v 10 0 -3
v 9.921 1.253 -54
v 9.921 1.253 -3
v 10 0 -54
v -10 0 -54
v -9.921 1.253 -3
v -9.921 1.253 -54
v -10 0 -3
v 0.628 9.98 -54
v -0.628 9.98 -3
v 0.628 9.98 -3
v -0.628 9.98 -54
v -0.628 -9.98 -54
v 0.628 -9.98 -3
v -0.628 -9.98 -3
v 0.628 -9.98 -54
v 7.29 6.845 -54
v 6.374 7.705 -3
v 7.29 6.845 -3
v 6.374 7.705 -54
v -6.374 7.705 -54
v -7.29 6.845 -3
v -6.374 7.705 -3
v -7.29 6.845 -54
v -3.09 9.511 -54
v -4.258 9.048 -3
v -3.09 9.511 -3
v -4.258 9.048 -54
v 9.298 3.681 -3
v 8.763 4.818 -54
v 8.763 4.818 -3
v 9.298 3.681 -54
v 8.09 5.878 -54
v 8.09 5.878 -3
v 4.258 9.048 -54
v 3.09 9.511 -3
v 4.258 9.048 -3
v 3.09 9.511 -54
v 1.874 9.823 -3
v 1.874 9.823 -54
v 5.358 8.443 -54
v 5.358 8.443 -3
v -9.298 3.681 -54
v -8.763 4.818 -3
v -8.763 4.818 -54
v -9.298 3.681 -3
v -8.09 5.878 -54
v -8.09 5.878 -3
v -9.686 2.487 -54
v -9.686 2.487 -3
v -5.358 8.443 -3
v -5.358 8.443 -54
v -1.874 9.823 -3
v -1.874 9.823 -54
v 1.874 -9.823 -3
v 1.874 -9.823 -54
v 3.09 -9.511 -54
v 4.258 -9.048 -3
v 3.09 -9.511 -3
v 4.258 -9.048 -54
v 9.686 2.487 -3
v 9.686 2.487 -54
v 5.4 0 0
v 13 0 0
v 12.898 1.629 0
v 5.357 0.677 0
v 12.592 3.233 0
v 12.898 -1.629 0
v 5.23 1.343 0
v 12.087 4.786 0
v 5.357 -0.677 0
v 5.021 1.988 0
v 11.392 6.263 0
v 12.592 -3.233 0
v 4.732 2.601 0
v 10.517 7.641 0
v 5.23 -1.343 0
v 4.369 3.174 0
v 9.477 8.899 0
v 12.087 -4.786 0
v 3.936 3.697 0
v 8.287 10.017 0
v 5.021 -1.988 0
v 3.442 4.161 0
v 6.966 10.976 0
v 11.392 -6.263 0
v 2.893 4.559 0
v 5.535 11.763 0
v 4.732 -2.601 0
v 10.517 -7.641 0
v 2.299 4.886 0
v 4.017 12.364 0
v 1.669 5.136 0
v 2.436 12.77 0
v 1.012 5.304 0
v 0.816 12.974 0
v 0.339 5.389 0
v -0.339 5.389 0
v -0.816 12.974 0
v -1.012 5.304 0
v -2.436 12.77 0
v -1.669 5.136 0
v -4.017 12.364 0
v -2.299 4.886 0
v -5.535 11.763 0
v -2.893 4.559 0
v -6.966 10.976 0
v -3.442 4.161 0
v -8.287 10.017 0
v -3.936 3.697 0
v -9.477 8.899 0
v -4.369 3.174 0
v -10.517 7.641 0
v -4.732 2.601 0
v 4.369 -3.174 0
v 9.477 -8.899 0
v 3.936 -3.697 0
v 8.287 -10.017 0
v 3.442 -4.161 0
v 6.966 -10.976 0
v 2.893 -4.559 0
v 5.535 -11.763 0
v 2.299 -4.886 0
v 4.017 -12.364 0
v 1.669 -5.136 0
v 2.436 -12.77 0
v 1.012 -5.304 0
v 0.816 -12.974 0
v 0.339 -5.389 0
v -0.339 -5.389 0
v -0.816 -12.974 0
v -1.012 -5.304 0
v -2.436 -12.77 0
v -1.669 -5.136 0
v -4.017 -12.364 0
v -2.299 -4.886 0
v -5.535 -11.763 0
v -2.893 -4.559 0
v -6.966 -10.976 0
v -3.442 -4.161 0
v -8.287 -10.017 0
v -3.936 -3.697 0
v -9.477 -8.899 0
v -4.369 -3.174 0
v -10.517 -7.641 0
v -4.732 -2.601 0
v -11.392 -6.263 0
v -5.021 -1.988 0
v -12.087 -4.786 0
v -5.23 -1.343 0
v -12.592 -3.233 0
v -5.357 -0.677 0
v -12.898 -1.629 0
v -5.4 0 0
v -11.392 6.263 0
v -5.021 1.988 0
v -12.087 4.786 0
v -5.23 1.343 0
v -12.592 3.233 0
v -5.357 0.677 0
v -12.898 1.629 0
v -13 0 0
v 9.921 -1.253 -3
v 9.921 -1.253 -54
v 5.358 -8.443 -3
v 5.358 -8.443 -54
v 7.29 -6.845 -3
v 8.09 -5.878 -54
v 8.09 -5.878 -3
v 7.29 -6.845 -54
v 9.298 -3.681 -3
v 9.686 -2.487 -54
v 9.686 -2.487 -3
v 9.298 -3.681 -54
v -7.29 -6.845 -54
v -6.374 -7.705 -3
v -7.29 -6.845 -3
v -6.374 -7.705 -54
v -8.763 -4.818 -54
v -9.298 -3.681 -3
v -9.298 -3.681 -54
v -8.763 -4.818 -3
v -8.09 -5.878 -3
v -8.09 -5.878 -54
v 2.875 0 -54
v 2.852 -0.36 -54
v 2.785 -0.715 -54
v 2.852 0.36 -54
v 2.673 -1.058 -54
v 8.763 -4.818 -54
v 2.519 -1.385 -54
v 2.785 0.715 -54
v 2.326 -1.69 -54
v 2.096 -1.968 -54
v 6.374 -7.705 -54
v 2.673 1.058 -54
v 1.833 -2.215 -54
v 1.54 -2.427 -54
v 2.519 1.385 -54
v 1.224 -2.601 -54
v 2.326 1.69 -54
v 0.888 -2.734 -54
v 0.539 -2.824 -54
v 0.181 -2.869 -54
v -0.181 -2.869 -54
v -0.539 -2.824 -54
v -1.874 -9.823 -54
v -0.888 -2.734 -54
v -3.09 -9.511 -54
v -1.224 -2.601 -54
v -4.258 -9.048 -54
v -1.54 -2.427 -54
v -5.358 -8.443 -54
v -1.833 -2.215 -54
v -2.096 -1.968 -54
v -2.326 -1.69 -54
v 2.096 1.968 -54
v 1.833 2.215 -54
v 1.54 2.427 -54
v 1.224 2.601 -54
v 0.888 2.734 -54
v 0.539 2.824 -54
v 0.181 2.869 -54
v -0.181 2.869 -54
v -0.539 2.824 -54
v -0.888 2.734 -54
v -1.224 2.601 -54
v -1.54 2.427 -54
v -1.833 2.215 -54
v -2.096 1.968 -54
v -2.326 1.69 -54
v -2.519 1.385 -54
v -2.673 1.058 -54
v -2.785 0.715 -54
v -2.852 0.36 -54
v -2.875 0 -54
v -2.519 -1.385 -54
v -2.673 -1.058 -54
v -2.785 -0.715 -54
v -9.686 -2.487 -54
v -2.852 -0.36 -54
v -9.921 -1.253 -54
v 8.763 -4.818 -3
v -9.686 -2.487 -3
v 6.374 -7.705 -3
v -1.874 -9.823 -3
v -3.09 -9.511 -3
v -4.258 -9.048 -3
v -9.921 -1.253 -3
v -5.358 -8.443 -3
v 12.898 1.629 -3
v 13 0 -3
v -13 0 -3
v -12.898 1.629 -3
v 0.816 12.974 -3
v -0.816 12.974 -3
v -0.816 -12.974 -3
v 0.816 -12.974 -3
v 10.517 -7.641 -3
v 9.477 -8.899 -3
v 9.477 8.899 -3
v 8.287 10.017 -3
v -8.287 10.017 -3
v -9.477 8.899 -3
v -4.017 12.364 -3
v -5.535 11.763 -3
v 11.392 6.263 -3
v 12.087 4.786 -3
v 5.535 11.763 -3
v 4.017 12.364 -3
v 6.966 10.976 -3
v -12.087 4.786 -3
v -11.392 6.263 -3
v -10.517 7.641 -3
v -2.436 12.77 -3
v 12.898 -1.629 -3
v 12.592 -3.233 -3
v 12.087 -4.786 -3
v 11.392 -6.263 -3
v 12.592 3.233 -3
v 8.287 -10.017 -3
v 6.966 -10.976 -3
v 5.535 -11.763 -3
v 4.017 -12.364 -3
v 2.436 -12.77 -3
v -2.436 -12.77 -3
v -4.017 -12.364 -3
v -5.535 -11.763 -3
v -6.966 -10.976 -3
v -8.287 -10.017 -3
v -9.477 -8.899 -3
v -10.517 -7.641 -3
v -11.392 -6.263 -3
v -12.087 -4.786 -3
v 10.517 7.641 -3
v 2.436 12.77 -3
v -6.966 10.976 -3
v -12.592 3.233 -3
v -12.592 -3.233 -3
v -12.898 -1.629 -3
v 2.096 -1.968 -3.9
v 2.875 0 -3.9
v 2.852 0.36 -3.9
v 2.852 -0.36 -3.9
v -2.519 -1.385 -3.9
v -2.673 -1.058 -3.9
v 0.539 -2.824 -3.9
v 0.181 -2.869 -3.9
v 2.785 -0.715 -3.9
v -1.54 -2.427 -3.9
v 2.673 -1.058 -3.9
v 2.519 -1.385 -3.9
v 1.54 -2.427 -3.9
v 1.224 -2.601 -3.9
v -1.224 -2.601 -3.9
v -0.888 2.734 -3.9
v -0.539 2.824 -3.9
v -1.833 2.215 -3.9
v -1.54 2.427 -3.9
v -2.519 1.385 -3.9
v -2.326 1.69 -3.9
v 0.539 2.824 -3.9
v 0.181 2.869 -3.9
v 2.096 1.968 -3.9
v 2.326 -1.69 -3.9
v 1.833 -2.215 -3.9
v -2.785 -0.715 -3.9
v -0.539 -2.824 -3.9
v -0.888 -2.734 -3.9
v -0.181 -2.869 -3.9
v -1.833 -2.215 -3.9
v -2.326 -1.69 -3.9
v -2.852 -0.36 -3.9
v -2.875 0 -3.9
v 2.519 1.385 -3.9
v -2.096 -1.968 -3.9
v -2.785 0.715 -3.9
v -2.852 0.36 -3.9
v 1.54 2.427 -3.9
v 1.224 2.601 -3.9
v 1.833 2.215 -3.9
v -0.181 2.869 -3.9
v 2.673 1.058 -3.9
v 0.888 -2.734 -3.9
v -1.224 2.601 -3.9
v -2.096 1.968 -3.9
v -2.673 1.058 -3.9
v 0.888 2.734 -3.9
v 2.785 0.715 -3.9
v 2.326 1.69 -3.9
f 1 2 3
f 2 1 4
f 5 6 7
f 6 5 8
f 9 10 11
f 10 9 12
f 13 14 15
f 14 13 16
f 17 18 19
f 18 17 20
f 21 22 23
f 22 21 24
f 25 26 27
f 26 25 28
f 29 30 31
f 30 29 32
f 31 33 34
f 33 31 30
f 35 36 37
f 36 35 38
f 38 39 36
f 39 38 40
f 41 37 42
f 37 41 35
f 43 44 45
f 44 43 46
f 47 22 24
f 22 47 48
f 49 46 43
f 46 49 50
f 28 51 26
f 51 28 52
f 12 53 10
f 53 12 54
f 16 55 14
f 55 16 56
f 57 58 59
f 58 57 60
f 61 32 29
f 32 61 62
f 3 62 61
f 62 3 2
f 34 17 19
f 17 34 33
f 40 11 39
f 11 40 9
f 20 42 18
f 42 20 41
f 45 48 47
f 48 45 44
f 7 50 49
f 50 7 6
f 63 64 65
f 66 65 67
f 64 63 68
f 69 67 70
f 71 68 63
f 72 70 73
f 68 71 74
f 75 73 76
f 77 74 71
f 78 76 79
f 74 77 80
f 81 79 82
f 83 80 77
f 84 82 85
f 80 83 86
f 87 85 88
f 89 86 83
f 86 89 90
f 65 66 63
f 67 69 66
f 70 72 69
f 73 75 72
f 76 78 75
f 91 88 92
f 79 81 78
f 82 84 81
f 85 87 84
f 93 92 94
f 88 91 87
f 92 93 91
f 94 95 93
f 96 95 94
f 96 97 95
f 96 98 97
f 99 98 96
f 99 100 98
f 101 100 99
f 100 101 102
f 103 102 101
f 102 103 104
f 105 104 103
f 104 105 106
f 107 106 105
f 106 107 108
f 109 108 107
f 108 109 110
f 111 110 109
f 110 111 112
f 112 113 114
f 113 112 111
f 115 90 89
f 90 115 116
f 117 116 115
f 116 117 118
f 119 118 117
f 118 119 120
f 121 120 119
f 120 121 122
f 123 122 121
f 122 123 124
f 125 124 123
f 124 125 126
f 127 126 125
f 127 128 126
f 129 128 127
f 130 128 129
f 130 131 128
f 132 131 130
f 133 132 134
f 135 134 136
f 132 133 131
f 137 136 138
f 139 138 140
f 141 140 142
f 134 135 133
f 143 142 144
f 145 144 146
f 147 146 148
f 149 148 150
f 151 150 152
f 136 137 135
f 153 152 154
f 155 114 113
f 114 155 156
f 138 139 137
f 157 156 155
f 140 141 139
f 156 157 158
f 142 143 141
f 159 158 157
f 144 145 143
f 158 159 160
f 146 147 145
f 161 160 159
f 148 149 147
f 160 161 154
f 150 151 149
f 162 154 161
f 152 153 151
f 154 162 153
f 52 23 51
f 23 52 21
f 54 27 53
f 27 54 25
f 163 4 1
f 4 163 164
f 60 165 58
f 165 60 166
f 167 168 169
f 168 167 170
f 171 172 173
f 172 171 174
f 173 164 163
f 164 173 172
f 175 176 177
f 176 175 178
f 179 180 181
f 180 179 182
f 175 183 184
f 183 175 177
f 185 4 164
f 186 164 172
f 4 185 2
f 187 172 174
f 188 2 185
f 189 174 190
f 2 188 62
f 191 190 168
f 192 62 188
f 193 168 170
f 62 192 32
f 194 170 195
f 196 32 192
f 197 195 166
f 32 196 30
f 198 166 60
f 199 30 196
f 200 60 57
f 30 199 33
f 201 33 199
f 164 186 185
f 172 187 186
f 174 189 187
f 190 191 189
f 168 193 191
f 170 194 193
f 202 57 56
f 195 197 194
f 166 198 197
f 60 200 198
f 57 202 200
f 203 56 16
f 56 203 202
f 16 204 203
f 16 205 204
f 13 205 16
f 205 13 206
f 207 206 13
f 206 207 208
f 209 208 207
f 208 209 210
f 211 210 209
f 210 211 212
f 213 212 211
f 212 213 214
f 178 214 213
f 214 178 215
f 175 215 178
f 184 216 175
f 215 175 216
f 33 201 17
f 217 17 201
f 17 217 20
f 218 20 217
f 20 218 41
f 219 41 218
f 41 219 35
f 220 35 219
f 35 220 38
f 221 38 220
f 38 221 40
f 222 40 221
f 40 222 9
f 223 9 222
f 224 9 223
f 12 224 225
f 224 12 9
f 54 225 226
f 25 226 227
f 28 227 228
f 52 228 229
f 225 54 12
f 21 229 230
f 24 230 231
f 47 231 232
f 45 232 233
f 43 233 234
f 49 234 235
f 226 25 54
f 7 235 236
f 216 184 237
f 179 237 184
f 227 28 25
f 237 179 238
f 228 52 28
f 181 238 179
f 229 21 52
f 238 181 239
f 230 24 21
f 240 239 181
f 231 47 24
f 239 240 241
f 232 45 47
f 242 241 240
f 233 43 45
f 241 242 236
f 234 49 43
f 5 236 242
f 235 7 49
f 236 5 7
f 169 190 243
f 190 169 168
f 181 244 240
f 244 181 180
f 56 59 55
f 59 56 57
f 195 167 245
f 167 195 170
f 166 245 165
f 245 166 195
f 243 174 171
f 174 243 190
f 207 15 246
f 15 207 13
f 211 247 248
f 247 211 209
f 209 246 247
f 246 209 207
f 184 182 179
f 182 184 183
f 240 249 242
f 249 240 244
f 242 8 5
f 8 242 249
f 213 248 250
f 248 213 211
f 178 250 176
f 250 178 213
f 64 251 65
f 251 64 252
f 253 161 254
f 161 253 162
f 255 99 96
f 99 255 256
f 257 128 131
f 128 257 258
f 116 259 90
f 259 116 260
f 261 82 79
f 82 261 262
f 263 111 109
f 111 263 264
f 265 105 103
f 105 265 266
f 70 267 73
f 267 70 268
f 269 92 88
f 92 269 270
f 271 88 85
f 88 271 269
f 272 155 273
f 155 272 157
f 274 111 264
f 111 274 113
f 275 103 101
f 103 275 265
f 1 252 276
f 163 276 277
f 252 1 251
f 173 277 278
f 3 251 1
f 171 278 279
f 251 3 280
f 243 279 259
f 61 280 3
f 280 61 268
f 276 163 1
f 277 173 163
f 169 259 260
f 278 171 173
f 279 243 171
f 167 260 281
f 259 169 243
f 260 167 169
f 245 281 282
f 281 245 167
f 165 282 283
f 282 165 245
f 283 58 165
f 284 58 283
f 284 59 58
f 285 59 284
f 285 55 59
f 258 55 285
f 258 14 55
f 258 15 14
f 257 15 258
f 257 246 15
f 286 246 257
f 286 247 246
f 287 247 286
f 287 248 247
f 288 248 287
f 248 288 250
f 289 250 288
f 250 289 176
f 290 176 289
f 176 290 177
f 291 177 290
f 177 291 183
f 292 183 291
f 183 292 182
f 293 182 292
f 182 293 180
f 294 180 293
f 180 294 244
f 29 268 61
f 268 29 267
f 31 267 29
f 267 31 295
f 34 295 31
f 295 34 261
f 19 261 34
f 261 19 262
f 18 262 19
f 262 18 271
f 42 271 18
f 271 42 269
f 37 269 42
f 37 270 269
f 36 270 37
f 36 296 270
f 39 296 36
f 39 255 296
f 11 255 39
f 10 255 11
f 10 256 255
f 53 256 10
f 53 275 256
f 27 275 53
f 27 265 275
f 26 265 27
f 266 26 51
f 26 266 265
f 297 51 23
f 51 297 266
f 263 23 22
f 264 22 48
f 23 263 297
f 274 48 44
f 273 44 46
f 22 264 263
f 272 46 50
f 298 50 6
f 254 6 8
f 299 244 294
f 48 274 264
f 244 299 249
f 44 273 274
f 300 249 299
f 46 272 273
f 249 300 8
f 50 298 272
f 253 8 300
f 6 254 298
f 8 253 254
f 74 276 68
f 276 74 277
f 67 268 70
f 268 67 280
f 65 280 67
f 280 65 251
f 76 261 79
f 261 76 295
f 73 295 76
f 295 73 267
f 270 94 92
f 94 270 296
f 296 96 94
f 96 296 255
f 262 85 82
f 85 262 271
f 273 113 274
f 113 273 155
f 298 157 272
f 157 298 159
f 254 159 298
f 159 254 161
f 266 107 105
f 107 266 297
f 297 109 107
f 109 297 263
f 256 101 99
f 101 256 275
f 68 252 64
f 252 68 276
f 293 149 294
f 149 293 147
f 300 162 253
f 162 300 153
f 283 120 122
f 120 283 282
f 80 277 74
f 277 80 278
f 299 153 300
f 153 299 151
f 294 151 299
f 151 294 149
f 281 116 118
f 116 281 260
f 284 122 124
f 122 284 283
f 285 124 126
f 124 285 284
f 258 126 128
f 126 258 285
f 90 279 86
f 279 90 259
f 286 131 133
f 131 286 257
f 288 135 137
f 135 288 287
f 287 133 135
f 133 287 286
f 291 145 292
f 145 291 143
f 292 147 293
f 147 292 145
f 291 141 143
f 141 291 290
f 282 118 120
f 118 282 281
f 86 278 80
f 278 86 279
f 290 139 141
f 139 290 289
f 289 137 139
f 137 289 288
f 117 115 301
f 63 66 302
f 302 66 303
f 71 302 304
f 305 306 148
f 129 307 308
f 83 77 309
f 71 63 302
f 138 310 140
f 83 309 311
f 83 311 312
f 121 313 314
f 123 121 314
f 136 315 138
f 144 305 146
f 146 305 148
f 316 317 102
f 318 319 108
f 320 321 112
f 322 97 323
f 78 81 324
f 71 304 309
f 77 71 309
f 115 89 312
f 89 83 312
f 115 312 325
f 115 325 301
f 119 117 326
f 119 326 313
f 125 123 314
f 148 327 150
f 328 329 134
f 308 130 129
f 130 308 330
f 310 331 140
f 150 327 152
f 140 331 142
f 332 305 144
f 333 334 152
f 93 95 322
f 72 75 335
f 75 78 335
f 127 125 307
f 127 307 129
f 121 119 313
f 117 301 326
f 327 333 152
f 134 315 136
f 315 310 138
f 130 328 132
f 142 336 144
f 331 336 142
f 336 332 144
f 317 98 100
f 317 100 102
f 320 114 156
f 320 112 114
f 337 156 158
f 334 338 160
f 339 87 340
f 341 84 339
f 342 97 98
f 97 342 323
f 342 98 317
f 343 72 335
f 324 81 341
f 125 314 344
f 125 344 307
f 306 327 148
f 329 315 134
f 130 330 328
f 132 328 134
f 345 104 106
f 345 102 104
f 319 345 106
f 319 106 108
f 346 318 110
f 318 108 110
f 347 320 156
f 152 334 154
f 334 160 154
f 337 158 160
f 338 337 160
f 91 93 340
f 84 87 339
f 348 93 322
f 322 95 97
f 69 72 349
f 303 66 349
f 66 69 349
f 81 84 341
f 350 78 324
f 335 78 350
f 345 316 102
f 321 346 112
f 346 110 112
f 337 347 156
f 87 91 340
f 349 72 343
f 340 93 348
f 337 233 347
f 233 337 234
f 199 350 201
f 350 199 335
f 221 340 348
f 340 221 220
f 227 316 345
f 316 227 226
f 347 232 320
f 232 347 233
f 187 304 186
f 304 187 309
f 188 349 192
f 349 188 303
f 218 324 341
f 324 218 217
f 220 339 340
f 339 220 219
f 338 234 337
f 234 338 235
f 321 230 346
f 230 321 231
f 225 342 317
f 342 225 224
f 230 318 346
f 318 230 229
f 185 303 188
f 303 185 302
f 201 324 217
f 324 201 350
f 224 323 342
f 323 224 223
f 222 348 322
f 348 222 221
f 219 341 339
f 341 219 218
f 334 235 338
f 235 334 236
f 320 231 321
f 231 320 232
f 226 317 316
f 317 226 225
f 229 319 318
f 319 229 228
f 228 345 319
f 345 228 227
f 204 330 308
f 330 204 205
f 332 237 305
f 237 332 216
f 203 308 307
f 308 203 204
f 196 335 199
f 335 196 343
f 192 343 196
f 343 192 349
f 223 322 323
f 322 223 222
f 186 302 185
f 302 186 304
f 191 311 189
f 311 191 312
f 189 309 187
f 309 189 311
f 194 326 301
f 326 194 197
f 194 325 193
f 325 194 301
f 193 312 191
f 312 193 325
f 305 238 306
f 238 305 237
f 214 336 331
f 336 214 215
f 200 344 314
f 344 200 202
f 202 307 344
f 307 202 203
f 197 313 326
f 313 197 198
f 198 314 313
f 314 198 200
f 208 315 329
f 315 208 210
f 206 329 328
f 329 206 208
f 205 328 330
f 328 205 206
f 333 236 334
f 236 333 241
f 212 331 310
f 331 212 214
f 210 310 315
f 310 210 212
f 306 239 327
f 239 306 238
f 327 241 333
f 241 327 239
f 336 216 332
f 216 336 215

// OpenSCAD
$fn = 50;


difference() {
	union() {
		translate(v = [0, 0, -54.0000000000]) {
			cylinder(h = 54, r = 10.0000000000);
		}
		translate(v = [0, 0, -3.0000000000]) {
			cylinder(h = 3, r = 13.0000000000);
		}
	}
	union() {
		translate(v = [0, 0, 0]) {
			rotate(a = [0, 0, 0]) {
				difference() {
					union() {
						#translate(v = [0, 0, -54.0000000000]) {
							cylinder(h = 54, r = 2.6000000000);
						}
						#translate(v = [0, 0, -3.9000000000]) {
							cylinder(h = 3.9000000000, r1 = 2.8750000000, r2 = 5.4000000000);
						}
						#translate(v = [0, 0, -54.0000000000]) {
							cylinder(h = 54, r = 2.8750000000);
						}
						#translate(v = [0, 0, -54.0000000000]) {
							cylinder(h = 54, r = 2.6000000000);
						}
					}
					union();
				}
			}
		}
	}
}
